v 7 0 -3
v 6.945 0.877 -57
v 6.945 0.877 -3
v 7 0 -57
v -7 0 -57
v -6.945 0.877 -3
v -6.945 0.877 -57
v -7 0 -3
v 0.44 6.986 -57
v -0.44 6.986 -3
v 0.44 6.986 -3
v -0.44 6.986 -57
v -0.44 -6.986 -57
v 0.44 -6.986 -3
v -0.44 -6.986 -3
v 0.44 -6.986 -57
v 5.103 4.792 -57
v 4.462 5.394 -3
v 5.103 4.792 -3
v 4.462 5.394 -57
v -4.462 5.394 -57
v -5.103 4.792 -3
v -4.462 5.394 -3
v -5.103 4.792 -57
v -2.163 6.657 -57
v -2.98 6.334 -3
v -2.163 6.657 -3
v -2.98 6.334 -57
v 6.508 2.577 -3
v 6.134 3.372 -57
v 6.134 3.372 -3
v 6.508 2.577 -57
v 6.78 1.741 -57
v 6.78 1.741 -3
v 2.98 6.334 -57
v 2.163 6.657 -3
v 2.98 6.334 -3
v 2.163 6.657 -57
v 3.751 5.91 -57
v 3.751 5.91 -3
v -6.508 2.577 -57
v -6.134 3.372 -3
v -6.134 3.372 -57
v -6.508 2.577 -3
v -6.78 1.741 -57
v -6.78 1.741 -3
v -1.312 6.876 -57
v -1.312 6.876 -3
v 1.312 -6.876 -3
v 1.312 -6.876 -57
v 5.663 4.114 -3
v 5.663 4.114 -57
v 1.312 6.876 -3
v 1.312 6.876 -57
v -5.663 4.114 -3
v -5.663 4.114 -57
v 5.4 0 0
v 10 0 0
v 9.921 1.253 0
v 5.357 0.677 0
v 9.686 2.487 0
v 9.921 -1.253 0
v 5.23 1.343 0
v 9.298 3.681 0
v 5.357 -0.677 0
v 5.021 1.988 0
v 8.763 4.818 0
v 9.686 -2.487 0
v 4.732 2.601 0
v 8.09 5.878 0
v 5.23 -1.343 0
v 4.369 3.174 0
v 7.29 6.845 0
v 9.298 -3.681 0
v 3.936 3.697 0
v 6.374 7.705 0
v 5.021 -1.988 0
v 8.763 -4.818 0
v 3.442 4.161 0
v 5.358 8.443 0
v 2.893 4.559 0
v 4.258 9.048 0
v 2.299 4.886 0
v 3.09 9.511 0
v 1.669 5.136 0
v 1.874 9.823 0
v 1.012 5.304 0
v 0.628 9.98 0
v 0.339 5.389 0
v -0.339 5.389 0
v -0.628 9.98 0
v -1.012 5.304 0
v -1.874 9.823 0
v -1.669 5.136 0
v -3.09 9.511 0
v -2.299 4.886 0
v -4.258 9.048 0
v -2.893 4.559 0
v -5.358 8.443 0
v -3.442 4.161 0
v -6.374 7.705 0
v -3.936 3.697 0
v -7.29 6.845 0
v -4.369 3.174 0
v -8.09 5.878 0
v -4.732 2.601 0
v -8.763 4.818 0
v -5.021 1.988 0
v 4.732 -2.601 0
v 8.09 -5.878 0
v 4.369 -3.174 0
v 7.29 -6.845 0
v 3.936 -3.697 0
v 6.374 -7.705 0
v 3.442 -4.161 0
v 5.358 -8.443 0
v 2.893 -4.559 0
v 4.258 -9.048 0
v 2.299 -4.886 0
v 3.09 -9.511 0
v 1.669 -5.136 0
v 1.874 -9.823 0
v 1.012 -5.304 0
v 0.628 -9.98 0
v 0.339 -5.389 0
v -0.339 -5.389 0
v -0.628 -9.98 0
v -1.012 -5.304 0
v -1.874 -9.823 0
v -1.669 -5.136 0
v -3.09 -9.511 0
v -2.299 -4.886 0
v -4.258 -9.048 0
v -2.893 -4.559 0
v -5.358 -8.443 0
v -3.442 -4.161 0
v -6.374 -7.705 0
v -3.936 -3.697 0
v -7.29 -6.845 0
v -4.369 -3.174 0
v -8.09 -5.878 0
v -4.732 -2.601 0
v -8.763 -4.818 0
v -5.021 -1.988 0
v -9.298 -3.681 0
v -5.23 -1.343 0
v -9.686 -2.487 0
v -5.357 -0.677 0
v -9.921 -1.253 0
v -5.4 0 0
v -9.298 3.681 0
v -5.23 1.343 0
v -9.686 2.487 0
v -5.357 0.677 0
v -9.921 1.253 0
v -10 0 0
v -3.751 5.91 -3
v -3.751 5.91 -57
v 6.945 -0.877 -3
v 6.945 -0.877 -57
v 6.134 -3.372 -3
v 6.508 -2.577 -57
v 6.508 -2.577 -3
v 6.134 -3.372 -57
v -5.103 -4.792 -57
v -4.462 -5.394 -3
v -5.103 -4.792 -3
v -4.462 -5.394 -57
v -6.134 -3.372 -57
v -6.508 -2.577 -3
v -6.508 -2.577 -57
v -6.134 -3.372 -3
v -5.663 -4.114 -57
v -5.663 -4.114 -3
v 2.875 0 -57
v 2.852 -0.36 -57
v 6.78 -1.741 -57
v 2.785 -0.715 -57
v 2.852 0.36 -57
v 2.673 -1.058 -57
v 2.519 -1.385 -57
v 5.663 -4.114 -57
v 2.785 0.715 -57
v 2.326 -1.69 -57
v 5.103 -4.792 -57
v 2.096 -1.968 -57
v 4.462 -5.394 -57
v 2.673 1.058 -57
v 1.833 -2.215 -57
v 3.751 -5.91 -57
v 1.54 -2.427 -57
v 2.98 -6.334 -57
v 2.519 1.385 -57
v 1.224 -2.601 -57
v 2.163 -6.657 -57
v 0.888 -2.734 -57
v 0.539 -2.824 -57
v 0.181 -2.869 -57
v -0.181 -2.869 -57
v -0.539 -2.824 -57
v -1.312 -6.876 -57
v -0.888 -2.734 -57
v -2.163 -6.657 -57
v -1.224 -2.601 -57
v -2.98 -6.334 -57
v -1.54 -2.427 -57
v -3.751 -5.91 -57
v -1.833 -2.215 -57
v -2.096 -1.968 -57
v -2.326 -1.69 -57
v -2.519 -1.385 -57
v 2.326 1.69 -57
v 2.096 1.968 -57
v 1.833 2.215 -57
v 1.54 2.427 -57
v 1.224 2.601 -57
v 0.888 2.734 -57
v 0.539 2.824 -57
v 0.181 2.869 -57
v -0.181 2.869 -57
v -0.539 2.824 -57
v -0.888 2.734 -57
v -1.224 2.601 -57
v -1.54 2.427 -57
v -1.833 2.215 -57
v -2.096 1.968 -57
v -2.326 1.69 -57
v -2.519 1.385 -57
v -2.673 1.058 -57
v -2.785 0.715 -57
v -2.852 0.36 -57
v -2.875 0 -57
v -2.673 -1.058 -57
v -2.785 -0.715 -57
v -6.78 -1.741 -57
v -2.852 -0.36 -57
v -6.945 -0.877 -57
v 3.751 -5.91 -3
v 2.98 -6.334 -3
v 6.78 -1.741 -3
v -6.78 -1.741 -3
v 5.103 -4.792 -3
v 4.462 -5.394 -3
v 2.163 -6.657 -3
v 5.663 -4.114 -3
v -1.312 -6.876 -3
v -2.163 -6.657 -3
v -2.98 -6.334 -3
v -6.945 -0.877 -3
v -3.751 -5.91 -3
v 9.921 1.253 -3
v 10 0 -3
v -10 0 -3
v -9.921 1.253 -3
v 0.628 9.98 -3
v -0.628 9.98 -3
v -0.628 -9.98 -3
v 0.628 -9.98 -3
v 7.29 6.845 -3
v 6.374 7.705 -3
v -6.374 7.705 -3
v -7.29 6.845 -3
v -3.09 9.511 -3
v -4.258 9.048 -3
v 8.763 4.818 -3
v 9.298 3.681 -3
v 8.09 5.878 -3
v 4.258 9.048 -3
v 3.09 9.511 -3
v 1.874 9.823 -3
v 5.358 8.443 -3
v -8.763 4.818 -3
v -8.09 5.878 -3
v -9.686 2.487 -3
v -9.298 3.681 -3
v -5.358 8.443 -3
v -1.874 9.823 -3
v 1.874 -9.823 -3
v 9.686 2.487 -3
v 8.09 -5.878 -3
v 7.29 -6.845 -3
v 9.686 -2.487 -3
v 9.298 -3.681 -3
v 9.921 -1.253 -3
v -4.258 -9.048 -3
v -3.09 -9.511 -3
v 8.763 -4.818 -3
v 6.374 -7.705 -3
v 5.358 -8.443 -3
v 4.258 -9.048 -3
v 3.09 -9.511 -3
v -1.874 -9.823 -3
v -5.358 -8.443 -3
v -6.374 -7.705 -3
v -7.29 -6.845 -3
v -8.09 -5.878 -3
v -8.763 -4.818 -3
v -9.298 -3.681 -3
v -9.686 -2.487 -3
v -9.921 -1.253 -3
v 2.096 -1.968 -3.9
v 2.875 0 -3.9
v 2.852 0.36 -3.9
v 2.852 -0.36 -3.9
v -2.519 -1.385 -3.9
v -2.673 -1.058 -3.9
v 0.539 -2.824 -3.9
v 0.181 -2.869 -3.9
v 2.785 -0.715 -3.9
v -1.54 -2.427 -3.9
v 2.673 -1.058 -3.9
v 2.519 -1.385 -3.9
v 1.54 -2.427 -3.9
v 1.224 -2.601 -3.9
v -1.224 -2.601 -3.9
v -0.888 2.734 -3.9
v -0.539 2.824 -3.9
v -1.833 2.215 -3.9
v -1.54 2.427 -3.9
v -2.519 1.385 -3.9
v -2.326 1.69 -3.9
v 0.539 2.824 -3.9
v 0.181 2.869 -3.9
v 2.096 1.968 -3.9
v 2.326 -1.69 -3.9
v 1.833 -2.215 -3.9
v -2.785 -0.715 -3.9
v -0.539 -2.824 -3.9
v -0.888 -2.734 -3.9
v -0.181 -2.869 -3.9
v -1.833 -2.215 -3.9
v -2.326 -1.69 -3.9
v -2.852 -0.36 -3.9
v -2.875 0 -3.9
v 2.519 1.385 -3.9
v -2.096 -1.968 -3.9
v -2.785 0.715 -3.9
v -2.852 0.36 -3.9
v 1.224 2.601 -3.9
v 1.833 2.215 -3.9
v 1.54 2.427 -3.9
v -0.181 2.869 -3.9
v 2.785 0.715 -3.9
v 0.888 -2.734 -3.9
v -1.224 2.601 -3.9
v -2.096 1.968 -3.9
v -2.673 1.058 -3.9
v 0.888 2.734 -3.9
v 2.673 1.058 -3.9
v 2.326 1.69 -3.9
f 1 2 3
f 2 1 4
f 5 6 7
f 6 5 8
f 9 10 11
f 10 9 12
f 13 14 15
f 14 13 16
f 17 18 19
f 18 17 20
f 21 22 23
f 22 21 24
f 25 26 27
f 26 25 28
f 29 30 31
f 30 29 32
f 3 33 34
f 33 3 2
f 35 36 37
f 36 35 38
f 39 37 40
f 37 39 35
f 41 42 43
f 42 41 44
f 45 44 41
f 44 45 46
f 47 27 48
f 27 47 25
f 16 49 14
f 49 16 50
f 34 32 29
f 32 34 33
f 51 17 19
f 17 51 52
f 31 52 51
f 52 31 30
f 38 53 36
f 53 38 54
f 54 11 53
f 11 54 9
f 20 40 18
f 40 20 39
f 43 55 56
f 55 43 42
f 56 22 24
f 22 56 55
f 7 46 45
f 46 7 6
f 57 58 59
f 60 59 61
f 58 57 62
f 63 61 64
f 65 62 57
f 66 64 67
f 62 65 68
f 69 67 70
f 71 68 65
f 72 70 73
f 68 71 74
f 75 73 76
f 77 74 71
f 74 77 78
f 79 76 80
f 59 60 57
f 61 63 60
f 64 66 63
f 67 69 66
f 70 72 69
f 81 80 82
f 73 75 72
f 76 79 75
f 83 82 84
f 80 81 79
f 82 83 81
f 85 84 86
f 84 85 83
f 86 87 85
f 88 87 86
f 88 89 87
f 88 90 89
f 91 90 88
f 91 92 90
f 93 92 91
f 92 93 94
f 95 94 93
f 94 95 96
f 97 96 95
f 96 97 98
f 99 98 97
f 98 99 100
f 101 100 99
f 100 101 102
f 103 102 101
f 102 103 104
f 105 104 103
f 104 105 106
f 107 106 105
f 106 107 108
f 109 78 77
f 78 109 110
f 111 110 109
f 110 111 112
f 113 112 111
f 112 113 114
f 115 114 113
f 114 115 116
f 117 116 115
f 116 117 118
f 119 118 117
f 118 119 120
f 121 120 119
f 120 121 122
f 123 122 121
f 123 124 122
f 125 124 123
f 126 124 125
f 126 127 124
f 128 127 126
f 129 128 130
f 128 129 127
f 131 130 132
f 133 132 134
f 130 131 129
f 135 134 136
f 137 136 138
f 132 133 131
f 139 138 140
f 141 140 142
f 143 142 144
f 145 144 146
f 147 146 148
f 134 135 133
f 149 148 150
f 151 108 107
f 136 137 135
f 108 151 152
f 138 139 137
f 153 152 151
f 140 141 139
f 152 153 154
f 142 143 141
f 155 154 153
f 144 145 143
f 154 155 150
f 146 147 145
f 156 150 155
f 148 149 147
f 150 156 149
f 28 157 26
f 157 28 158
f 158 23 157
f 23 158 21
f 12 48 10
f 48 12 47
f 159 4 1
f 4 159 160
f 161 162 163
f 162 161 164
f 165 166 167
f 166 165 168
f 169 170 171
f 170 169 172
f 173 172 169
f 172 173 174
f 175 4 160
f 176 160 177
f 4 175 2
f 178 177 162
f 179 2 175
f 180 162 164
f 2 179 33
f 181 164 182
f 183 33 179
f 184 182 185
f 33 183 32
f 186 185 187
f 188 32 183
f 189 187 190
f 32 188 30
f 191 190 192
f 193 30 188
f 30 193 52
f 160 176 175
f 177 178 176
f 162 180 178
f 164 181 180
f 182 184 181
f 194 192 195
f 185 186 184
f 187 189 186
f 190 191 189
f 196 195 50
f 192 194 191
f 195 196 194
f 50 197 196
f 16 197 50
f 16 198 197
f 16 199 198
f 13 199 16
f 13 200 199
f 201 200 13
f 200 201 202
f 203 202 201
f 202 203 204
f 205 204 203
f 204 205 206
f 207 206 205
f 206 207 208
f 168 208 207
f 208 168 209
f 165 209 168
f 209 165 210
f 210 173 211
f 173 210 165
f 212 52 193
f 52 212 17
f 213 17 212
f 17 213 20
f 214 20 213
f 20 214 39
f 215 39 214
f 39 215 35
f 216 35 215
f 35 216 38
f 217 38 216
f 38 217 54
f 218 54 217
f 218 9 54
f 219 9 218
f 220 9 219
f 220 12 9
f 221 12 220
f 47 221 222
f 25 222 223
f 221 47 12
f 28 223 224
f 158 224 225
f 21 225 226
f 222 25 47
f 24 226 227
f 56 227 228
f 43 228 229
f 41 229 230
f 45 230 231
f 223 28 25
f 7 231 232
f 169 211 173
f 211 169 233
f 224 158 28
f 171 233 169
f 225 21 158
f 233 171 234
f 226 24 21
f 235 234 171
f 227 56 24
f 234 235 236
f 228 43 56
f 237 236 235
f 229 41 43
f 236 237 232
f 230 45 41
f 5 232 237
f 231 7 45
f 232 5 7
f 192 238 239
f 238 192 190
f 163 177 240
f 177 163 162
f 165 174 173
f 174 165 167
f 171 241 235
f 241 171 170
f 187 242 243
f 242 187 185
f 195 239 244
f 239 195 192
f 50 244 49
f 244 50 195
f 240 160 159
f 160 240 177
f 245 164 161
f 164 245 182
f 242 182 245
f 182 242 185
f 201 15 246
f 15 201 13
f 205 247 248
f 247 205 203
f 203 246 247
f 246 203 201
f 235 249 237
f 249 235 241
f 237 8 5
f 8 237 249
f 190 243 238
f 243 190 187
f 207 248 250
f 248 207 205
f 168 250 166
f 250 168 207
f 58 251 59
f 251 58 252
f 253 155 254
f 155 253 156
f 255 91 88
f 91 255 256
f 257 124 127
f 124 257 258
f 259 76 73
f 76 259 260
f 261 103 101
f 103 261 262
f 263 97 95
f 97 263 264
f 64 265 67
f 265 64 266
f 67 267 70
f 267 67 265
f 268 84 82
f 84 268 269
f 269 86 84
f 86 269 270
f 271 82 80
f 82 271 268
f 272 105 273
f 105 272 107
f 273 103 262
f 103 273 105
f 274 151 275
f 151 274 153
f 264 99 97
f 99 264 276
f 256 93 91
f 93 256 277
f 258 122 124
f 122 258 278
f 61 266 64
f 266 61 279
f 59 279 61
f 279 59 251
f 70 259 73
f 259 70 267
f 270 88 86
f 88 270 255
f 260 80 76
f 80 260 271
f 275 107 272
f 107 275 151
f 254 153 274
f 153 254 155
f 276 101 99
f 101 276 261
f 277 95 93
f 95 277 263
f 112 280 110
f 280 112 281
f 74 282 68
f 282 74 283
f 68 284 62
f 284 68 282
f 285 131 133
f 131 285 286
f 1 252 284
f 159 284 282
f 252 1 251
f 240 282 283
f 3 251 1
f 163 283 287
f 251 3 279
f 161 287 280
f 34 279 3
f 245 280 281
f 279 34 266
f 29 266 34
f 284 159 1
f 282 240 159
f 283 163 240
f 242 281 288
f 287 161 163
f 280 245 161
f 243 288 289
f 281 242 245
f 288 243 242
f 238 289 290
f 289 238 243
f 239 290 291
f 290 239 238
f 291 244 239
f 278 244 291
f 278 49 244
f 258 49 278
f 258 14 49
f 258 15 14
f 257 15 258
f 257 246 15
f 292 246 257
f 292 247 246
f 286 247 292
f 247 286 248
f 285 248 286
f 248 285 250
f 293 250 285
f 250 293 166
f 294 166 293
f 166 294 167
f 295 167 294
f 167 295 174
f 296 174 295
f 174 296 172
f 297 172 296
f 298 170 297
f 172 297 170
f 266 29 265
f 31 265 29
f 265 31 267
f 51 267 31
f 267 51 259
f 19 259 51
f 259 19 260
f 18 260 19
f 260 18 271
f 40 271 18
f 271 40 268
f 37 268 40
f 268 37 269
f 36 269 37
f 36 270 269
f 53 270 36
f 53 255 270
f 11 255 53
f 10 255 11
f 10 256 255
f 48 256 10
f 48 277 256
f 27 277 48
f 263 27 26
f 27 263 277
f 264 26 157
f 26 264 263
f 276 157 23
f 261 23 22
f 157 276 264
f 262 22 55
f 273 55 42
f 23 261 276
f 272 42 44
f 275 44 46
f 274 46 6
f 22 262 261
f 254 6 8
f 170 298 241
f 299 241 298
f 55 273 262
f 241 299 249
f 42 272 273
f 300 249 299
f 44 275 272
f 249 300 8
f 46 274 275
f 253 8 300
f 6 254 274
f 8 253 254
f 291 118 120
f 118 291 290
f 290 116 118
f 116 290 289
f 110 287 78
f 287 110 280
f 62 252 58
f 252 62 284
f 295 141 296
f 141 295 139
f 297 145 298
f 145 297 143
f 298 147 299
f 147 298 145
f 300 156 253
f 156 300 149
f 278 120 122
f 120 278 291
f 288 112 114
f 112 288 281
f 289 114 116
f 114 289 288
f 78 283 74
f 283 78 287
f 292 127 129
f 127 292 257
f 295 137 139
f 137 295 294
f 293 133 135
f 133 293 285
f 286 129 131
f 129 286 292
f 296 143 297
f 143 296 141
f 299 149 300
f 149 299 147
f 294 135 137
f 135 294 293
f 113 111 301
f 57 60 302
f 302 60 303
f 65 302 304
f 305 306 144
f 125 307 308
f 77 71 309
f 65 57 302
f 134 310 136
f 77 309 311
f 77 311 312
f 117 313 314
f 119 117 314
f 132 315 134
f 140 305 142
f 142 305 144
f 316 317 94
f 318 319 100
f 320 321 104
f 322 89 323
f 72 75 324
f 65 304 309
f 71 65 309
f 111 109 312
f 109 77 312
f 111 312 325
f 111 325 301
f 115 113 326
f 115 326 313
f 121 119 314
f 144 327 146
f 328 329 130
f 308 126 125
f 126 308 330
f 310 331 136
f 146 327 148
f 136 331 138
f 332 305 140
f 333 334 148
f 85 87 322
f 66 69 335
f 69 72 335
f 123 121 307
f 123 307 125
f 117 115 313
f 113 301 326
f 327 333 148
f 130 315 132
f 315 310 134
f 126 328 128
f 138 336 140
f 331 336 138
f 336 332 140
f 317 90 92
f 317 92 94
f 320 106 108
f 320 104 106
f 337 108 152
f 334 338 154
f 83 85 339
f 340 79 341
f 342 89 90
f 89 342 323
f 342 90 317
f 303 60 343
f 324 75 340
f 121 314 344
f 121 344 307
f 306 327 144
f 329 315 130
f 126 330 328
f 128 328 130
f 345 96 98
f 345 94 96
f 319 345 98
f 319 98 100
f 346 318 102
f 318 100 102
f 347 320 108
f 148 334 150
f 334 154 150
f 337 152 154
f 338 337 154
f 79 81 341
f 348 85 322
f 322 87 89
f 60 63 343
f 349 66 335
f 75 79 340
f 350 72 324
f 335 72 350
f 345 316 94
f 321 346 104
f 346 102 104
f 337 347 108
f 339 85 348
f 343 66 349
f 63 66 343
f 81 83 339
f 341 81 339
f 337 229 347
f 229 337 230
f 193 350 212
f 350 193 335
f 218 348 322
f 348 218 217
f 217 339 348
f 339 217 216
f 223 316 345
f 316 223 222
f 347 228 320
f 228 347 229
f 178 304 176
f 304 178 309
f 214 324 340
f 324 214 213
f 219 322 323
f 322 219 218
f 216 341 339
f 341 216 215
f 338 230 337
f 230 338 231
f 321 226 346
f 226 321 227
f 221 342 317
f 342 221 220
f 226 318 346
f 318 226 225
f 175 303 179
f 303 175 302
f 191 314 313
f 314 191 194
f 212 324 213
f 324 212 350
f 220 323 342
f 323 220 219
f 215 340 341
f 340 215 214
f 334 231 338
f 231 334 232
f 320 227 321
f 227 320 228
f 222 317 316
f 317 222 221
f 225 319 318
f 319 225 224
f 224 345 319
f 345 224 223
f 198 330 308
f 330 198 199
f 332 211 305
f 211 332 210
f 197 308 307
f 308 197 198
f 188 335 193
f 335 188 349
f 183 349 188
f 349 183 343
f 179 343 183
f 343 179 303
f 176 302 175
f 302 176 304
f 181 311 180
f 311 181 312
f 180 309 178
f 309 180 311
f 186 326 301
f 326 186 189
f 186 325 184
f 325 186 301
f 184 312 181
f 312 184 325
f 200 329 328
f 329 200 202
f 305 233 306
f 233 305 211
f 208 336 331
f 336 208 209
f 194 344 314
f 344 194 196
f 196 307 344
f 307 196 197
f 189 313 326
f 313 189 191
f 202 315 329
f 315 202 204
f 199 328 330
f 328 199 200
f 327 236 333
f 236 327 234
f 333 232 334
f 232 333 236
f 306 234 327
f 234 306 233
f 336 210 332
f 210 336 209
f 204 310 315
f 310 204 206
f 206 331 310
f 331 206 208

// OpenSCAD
$fn = 50;


difference() {
	union() {
		translate(v = [0, 0, -57.0000000000]) {
			cylinder(h = 57, r = 7.0000000000);
		}
		translate(v = [0, 0, -3.0000000000]) {
			cylinder(h = 3, r = 10.0000000000);
		}
	}
	union() {
		translate(v = [0, 0, 0]) {
			rotate(a = [0, 0, 0]) {
				difference() {
					union() {
						#translate(v = [0, 0, -57.0000000000]) {
							cylinder(h = 57, r = 2.6000000000);
						}
						#translate(v = [0, 0, -3.9000000000]) {
							cylinder(h = 3.9000000000, r = 7.0000000000, r1 = 2.8750000000, r2 = 5.4000000000);
						}
						#translate(v = [0, 0, -57.0000000000]) {
							cylinder(h = 57, r = 2.8750000000);
						}
						#translate(v = [0, 0, -57.0000000000]) {
							cylinder(h = 57, r = 2.6000000000);
						}
					}
					union();
				}
			}
		}
	}
}
